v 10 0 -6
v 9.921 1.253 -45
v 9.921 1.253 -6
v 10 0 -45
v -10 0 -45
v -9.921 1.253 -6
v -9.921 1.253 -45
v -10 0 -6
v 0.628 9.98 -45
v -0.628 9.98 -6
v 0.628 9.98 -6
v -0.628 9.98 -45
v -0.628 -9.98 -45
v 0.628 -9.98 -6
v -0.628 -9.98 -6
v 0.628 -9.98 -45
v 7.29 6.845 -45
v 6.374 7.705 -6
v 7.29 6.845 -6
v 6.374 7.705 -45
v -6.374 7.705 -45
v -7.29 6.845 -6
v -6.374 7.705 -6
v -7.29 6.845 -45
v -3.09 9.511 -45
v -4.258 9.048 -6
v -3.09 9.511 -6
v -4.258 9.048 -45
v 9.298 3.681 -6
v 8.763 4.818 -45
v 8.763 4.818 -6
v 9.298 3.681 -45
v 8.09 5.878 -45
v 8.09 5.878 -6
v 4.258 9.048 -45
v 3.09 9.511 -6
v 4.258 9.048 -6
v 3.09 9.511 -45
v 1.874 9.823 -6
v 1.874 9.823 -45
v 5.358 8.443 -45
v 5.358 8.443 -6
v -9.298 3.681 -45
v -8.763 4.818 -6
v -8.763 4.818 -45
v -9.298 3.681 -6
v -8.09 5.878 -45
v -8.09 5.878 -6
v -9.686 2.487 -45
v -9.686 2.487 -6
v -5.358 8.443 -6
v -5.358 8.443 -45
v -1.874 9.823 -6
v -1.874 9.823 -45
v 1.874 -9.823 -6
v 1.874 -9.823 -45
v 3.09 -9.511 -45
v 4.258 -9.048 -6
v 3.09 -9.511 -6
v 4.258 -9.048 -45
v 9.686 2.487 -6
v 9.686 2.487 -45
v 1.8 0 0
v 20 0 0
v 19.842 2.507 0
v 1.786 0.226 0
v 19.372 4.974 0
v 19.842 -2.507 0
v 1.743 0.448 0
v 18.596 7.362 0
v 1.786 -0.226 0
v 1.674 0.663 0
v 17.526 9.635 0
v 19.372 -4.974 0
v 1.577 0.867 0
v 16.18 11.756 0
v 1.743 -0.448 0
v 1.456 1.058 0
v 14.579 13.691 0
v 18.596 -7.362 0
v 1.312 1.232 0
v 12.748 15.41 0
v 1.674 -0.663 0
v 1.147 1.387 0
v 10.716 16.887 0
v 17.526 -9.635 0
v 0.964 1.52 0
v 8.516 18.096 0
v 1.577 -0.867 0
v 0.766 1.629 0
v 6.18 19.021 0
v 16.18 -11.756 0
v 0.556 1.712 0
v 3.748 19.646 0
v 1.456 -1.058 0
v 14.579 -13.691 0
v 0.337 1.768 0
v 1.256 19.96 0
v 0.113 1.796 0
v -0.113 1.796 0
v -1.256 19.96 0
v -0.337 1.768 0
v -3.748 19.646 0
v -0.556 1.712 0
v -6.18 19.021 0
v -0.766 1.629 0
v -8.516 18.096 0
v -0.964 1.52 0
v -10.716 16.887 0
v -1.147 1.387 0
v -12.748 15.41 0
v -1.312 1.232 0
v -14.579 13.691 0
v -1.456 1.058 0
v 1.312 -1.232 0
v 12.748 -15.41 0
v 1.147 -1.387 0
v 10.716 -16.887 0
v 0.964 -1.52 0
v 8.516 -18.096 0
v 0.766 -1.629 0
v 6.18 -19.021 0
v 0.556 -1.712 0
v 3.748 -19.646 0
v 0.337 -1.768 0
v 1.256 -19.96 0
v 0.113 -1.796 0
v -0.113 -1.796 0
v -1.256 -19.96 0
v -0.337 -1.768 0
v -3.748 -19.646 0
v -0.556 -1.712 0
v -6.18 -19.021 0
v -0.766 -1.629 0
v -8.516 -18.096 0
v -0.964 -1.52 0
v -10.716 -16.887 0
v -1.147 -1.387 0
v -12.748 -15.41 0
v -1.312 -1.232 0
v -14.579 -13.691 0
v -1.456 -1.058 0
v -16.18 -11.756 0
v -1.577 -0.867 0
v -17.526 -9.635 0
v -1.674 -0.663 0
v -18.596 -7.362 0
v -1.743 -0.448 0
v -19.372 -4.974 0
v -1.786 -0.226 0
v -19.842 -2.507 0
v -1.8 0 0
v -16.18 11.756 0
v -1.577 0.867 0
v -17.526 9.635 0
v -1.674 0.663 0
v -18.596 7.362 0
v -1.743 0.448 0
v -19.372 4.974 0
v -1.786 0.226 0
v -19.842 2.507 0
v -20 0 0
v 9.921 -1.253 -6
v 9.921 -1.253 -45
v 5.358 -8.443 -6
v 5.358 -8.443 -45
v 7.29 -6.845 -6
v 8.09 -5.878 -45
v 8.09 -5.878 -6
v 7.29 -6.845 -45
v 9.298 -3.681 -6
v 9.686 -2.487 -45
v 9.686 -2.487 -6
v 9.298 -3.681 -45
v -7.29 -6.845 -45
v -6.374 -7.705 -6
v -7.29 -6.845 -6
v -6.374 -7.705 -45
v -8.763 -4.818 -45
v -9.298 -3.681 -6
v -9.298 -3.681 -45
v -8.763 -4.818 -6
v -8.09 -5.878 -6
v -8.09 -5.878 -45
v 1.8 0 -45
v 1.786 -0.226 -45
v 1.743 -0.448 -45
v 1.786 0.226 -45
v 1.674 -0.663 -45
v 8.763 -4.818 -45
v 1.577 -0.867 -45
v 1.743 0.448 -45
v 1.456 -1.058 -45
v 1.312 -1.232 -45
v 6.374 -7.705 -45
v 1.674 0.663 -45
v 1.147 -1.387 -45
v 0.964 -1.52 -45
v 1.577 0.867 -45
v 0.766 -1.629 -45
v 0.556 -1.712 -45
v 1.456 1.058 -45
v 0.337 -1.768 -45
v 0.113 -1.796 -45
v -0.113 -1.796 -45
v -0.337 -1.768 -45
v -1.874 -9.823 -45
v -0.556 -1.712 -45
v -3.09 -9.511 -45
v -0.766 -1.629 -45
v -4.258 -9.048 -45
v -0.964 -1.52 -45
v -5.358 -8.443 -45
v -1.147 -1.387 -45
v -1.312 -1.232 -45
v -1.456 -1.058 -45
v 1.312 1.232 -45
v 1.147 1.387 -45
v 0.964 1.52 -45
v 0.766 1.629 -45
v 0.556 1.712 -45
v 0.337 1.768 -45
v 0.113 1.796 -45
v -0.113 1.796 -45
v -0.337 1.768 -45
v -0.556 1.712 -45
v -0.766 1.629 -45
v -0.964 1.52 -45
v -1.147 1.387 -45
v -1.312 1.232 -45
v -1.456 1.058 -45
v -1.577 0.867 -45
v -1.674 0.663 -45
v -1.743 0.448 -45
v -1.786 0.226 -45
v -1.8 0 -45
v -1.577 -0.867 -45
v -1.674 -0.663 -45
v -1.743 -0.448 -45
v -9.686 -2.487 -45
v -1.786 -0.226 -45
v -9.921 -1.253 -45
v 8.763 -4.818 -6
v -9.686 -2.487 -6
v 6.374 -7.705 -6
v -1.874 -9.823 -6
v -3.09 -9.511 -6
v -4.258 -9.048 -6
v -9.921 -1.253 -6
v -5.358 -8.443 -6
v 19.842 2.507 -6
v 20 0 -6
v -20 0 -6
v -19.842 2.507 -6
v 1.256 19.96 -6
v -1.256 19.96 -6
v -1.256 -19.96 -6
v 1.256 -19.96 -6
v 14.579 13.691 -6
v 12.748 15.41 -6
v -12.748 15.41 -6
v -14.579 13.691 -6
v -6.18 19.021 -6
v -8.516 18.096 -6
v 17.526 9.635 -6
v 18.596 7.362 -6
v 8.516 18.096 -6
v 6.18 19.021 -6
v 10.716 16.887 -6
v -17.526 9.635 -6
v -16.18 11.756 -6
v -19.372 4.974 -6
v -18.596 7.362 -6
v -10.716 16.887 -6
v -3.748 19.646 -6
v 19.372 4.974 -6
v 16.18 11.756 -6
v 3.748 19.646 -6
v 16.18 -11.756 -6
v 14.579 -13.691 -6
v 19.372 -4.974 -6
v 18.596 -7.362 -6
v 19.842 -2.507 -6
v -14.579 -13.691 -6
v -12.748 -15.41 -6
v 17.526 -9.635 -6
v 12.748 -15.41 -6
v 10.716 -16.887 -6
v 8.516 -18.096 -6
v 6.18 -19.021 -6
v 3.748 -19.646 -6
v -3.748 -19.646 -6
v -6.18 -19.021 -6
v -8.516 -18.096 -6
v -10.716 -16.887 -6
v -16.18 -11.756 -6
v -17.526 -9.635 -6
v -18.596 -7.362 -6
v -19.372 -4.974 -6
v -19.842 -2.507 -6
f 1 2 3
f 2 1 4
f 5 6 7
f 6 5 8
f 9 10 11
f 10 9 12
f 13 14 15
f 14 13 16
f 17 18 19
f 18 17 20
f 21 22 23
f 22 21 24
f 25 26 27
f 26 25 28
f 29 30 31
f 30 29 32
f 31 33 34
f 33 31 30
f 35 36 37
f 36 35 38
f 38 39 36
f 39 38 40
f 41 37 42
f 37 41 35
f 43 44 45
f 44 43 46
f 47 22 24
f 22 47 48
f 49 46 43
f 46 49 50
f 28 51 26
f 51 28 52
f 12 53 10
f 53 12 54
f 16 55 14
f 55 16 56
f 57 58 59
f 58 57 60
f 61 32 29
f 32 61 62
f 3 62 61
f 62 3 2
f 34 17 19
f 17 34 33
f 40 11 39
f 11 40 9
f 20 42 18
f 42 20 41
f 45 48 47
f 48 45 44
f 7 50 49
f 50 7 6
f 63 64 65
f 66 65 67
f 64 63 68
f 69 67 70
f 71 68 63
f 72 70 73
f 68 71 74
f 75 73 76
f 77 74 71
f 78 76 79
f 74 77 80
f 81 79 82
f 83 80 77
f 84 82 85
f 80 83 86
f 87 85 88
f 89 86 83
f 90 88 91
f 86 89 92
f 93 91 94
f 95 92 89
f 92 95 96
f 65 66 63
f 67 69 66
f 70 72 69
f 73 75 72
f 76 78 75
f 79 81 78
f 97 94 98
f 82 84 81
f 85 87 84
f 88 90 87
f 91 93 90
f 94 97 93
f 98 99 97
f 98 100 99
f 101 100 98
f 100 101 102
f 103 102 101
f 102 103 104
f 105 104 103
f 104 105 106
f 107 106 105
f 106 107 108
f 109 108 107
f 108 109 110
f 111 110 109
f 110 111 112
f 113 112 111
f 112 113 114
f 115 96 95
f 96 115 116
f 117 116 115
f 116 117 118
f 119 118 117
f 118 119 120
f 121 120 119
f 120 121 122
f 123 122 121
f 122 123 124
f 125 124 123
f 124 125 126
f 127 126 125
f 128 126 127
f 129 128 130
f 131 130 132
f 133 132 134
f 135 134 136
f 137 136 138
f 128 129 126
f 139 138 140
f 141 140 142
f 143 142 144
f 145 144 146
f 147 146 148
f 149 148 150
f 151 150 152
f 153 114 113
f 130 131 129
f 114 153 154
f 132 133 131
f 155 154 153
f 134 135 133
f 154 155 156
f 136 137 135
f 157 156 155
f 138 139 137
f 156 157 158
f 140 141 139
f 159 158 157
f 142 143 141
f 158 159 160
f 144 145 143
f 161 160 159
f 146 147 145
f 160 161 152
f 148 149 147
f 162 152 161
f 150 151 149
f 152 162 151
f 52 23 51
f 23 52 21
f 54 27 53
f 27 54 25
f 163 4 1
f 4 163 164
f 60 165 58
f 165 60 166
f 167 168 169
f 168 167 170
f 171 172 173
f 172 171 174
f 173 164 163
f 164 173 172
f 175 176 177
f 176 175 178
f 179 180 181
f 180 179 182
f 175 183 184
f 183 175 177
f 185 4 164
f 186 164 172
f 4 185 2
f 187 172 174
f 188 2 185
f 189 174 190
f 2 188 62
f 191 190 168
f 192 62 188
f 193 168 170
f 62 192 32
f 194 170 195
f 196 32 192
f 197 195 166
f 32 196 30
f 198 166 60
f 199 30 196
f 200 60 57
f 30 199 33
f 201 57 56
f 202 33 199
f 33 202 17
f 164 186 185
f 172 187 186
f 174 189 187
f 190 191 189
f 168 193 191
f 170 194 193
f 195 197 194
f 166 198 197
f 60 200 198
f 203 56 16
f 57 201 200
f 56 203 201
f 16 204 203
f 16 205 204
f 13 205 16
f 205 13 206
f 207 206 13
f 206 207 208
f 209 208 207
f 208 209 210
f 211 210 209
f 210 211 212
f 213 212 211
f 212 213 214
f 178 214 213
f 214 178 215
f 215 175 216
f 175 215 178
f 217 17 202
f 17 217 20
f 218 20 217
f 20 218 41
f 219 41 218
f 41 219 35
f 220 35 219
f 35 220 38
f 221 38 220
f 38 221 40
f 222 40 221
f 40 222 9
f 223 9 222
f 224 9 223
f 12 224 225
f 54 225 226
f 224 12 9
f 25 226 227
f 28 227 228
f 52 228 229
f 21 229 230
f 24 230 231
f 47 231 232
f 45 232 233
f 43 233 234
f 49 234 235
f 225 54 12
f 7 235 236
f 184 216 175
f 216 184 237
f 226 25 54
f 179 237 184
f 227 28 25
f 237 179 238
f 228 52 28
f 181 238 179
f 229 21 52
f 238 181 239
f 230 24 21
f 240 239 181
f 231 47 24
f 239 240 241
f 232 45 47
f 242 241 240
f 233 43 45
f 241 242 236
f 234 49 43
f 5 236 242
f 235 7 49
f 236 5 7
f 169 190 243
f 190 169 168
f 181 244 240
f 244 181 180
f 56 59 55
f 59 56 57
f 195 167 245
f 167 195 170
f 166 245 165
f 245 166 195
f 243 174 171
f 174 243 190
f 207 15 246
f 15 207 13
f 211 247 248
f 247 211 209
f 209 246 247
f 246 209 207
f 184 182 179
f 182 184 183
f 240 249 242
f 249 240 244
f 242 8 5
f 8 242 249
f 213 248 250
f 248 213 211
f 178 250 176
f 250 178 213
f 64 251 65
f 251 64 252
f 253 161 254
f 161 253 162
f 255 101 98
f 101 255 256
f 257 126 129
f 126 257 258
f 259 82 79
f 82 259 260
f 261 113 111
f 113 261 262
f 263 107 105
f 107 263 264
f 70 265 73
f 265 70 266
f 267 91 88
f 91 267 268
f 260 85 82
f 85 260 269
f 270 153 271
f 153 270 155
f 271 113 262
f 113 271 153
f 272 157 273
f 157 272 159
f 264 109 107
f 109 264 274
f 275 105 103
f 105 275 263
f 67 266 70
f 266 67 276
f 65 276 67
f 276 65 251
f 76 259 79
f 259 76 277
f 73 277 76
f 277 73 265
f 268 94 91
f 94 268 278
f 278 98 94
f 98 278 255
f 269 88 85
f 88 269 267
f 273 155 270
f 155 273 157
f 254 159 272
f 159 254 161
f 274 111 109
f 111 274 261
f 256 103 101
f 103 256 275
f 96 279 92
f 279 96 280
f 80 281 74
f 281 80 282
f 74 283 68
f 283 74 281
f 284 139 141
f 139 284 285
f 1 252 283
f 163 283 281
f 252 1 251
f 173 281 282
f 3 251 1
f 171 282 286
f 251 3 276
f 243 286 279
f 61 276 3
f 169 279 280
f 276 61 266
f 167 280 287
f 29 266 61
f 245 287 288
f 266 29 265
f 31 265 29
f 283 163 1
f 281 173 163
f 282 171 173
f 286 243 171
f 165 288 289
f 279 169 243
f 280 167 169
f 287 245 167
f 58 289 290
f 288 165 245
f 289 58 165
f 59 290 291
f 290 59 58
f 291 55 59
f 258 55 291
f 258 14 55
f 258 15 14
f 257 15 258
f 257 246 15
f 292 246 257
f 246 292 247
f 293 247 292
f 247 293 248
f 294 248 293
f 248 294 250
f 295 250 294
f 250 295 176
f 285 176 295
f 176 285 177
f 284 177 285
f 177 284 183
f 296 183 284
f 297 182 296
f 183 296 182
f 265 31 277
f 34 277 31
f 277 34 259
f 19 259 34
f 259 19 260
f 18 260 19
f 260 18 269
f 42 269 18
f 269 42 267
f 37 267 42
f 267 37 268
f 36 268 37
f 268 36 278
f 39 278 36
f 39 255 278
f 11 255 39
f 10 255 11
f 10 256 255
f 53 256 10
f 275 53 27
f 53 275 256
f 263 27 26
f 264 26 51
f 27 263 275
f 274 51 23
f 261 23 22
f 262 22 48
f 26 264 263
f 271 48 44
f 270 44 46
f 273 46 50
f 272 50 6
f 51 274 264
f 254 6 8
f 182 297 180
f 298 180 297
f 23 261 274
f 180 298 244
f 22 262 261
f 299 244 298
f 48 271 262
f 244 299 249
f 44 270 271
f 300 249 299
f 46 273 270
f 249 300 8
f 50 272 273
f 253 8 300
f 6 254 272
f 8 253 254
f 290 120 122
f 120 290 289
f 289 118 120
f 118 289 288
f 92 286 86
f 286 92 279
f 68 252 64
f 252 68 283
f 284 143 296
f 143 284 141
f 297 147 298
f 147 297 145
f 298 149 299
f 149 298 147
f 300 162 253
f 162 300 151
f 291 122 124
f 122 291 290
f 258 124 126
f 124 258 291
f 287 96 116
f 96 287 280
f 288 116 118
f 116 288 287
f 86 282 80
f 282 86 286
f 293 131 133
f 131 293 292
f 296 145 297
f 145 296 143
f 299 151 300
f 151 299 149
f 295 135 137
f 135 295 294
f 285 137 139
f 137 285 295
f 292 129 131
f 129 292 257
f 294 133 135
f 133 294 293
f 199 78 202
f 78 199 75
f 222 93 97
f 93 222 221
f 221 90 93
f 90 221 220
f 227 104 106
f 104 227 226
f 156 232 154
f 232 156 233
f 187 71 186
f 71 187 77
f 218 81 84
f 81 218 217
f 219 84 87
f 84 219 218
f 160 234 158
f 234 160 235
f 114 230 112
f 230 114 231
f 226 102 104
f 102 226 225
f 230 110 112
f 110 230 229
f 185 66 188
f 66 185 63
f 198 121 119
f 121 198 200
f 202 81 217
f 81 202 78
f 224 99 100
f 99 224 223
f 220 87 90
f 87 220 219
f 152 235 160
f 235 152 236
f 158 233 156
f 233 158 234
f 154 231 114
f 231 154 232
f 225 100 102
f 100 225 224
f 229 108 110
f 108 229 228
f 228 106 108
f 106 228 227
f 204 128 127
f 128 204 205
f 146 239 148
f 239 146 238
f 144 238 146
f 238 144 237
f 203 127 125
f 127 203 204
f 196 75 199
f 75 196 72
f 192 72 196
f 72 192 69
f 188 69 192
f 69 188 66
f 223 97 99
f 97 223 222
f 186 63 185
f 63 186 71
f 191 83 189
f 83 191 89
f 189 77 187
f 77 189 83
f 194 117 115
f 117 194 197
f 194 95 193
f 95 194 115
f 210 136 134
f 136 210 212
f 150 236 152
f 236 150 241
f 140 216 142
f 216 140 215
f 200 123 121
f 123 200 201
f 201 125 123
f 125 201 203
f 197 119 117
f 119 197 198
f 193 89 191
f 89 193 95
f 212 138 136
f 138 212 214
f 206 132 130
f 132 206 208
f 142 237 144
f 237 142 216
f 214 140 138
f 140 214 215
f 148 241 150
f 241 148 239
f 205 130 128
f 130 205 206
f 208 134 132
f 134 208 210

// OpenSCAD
$fn = 50;


difference() {
	union() {
		translate(v = [0, 0, -45.0000000000]) {
			cylinder(h = 45, r = 10.0000000000);
		}
		translate(v = [0, 0, -6.0000000000]) {
			cylinder(h = 6, r = 20.0000000000);
		}
	}
	union() {
		#translate(v = [0, 0, -45]) {
			cylinder(h = 45, r = 1.8000000000);
		}
	}
}
